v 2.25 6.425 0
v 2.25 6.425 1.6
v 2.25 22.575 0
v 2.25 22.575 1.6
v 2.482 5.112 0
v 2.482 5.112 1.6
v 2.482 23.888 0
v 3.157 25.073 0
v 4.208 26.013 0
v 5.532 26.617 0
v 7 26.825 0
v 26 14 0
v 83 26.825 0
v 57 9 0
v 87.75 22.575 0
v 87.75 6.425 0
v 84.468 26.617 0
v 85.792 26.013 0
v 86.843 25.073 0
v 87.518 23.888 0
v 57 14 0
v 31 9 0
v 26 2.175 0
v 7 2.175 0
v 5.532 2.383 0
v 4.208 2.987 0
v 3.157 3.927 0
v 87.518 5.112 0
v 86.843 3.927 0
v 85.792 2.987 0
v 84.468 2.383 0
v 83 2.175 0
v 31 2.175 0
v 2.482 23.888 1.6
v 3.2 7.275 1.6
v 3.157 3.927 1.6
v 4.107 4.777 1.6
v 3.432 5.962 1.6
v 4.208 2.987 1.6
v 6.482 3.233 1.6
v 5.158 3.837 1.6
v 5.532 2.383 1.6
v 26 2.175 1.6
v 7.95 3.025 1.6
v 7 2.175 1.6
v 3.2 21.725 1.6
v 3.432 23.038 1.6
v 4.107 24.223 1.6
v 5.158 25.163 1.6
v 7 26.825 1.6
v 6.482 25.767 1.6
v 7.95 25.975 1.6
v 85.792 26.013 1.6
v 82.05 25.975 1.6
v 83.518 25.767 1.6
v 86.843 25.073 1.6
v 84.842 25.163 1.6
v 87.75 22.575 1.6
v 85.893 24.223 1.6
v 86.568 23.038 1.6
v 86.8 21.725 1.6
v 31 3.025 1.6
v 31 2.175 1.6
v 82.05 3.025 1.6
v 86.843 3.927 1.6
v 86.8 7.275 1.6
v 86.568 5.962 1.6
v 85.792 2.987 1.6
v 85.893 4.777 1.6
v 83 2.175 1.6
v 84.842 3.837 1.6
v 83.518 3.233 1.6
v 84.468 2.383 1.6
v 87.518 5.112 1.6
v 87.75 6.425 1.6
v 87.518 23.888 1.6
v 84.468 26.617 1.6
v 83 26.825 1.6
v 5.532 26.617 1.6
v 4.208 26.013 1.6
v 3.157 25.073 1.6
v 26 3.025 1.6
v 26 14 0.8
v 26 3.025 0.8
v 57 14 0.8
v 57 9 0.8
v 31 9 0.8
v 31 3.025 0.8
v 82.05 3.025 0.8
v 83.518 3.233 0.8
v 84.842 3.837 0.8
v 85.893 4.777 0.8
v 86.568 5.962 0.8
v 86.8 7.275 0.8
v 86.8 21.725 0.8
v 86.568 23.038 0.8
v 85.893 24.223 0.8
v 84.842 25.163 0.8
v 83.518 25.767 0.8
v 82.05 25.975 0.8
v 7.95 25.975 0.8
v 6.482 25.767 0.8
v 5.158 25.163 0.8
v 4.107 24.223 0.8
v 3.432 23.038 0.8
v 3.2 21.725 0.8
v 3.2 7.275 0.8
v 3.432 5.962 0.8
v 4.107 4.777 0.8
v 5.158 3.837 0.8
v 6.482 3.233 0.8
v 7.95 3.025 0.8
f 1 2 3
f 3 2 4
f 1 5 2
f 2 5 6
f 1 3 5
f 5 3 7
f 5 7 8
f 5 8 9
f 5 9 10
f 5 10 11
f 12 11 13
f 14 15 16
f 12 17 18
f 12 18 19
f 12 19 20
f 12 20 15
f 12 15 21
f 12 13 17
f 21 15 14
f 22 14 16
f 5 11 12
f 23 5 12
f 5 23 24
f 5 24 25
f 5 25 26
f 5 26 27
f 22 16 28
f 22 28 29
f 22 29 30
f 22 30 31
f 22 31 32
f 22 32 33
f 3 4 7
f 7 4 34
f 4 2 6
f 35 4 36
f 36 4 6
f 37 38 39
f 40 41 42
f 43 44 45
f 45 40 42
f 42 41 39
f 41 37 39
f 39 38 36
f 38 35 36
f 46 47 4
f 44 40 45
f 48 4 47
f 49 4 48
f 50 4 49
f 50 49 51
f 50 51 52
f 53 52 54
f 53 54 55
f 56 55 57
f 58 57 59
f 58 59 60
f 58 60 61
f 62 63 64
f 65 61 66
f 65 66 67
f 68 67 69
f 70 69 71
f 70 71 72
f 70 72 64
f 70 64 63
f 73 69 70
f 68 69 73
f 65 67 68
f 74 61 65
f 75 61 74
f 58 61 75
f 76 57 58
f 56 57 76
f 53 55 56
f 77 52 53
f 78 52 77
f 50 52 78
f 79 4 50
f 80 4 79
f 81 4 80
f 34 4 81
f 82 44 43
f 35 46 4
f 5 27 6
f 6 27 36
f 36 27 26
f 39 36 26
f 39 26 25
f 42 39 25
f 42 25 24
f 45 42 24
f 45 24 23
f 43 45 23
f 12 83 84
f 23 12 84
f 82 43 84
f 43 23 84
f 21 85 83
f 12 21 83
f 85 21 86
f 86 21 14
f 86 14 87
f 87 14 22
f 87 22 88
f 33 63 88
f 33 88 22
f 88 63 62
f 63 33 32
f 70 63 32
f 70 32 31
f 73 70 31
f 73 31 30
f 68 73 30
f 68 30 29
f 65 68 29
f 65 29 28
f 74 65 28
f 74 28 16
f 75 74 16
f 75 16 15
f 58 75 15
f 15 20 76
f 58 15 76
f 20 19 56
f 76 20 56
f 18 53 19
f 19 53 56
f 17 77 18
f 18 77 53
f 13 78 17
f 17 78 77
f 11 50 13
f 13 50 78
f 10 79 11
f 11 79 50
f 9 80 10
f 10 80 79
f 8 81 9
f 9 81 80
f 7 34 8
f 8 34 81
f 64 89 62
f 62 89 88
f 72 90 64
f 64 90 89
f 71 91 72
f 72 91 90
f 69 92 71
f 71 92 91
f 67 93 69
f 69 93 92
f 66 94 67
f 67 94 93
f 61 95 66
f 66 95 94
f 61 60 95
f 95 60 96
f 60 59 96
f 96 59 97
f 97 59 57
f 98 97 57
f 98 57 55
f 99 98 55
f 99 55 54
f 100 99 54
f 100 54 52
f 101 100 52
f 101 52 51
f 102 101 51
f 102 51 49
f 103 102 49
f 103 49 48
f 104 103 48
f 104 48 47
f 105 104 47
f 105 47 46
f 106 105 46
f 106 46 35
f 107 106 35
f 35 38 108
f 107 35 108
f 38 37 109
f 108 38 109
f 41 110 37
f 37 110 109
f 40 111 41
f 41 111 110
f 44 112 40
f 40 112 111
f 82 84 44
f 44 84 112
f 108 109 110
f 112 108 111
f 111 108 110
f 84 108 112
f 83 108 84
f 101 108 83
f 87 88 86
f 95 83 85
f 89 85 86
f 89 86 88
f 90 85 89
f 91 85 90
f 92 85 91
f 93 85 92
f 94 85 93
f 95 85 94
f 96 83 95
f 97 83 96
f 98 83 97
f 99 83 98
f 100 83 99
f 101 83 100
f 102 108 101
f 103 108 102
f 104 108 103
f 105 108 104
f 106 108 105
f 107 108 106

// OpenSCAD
// Vector-9000 - fast line follower robot (version 1.0)
// by Carlosgs (http://carlosgs.es) and Víctor Uceda
// CC-BY-SA license (http://creativecommons.org/licenses/by-sa/3.0/)
// Check http://www.thingiverse.com/thing:65012 for more information

sizeX = 90;
sizeY = 29;
sizeZ = 0.4*4;

difference() {
  translate([sizeX/2,sizeY/2,sizeZ/2])
    scale([0.95,0.85,1]) {
      difference() {
        roundedRect2D([sizeX,sizeY,sizeZ], 5);
        translate([0,0,0.8]) roundedRect2D([sizeX-2,sizeY-2,sizeZ], 5);
      }
    }
  translate([26,9,-1])
    cube([31,5,10*sizeZ]);
  translate([26,9,-1])
    scale([1,-1,1])
      cube([5,10,10*sizeZ]);
}

// http://www.thingiverse.com/thing:9347
module roundedRect2D(size, radius)
{
$fn=20;
x = size[0]-radius*2;
y = size[1]-radius*2;
z = size[2];

minkowski()
{
cube(size=[x,y,z],center=true);
cylinder(r=radius,h=0.00001);
}
}
